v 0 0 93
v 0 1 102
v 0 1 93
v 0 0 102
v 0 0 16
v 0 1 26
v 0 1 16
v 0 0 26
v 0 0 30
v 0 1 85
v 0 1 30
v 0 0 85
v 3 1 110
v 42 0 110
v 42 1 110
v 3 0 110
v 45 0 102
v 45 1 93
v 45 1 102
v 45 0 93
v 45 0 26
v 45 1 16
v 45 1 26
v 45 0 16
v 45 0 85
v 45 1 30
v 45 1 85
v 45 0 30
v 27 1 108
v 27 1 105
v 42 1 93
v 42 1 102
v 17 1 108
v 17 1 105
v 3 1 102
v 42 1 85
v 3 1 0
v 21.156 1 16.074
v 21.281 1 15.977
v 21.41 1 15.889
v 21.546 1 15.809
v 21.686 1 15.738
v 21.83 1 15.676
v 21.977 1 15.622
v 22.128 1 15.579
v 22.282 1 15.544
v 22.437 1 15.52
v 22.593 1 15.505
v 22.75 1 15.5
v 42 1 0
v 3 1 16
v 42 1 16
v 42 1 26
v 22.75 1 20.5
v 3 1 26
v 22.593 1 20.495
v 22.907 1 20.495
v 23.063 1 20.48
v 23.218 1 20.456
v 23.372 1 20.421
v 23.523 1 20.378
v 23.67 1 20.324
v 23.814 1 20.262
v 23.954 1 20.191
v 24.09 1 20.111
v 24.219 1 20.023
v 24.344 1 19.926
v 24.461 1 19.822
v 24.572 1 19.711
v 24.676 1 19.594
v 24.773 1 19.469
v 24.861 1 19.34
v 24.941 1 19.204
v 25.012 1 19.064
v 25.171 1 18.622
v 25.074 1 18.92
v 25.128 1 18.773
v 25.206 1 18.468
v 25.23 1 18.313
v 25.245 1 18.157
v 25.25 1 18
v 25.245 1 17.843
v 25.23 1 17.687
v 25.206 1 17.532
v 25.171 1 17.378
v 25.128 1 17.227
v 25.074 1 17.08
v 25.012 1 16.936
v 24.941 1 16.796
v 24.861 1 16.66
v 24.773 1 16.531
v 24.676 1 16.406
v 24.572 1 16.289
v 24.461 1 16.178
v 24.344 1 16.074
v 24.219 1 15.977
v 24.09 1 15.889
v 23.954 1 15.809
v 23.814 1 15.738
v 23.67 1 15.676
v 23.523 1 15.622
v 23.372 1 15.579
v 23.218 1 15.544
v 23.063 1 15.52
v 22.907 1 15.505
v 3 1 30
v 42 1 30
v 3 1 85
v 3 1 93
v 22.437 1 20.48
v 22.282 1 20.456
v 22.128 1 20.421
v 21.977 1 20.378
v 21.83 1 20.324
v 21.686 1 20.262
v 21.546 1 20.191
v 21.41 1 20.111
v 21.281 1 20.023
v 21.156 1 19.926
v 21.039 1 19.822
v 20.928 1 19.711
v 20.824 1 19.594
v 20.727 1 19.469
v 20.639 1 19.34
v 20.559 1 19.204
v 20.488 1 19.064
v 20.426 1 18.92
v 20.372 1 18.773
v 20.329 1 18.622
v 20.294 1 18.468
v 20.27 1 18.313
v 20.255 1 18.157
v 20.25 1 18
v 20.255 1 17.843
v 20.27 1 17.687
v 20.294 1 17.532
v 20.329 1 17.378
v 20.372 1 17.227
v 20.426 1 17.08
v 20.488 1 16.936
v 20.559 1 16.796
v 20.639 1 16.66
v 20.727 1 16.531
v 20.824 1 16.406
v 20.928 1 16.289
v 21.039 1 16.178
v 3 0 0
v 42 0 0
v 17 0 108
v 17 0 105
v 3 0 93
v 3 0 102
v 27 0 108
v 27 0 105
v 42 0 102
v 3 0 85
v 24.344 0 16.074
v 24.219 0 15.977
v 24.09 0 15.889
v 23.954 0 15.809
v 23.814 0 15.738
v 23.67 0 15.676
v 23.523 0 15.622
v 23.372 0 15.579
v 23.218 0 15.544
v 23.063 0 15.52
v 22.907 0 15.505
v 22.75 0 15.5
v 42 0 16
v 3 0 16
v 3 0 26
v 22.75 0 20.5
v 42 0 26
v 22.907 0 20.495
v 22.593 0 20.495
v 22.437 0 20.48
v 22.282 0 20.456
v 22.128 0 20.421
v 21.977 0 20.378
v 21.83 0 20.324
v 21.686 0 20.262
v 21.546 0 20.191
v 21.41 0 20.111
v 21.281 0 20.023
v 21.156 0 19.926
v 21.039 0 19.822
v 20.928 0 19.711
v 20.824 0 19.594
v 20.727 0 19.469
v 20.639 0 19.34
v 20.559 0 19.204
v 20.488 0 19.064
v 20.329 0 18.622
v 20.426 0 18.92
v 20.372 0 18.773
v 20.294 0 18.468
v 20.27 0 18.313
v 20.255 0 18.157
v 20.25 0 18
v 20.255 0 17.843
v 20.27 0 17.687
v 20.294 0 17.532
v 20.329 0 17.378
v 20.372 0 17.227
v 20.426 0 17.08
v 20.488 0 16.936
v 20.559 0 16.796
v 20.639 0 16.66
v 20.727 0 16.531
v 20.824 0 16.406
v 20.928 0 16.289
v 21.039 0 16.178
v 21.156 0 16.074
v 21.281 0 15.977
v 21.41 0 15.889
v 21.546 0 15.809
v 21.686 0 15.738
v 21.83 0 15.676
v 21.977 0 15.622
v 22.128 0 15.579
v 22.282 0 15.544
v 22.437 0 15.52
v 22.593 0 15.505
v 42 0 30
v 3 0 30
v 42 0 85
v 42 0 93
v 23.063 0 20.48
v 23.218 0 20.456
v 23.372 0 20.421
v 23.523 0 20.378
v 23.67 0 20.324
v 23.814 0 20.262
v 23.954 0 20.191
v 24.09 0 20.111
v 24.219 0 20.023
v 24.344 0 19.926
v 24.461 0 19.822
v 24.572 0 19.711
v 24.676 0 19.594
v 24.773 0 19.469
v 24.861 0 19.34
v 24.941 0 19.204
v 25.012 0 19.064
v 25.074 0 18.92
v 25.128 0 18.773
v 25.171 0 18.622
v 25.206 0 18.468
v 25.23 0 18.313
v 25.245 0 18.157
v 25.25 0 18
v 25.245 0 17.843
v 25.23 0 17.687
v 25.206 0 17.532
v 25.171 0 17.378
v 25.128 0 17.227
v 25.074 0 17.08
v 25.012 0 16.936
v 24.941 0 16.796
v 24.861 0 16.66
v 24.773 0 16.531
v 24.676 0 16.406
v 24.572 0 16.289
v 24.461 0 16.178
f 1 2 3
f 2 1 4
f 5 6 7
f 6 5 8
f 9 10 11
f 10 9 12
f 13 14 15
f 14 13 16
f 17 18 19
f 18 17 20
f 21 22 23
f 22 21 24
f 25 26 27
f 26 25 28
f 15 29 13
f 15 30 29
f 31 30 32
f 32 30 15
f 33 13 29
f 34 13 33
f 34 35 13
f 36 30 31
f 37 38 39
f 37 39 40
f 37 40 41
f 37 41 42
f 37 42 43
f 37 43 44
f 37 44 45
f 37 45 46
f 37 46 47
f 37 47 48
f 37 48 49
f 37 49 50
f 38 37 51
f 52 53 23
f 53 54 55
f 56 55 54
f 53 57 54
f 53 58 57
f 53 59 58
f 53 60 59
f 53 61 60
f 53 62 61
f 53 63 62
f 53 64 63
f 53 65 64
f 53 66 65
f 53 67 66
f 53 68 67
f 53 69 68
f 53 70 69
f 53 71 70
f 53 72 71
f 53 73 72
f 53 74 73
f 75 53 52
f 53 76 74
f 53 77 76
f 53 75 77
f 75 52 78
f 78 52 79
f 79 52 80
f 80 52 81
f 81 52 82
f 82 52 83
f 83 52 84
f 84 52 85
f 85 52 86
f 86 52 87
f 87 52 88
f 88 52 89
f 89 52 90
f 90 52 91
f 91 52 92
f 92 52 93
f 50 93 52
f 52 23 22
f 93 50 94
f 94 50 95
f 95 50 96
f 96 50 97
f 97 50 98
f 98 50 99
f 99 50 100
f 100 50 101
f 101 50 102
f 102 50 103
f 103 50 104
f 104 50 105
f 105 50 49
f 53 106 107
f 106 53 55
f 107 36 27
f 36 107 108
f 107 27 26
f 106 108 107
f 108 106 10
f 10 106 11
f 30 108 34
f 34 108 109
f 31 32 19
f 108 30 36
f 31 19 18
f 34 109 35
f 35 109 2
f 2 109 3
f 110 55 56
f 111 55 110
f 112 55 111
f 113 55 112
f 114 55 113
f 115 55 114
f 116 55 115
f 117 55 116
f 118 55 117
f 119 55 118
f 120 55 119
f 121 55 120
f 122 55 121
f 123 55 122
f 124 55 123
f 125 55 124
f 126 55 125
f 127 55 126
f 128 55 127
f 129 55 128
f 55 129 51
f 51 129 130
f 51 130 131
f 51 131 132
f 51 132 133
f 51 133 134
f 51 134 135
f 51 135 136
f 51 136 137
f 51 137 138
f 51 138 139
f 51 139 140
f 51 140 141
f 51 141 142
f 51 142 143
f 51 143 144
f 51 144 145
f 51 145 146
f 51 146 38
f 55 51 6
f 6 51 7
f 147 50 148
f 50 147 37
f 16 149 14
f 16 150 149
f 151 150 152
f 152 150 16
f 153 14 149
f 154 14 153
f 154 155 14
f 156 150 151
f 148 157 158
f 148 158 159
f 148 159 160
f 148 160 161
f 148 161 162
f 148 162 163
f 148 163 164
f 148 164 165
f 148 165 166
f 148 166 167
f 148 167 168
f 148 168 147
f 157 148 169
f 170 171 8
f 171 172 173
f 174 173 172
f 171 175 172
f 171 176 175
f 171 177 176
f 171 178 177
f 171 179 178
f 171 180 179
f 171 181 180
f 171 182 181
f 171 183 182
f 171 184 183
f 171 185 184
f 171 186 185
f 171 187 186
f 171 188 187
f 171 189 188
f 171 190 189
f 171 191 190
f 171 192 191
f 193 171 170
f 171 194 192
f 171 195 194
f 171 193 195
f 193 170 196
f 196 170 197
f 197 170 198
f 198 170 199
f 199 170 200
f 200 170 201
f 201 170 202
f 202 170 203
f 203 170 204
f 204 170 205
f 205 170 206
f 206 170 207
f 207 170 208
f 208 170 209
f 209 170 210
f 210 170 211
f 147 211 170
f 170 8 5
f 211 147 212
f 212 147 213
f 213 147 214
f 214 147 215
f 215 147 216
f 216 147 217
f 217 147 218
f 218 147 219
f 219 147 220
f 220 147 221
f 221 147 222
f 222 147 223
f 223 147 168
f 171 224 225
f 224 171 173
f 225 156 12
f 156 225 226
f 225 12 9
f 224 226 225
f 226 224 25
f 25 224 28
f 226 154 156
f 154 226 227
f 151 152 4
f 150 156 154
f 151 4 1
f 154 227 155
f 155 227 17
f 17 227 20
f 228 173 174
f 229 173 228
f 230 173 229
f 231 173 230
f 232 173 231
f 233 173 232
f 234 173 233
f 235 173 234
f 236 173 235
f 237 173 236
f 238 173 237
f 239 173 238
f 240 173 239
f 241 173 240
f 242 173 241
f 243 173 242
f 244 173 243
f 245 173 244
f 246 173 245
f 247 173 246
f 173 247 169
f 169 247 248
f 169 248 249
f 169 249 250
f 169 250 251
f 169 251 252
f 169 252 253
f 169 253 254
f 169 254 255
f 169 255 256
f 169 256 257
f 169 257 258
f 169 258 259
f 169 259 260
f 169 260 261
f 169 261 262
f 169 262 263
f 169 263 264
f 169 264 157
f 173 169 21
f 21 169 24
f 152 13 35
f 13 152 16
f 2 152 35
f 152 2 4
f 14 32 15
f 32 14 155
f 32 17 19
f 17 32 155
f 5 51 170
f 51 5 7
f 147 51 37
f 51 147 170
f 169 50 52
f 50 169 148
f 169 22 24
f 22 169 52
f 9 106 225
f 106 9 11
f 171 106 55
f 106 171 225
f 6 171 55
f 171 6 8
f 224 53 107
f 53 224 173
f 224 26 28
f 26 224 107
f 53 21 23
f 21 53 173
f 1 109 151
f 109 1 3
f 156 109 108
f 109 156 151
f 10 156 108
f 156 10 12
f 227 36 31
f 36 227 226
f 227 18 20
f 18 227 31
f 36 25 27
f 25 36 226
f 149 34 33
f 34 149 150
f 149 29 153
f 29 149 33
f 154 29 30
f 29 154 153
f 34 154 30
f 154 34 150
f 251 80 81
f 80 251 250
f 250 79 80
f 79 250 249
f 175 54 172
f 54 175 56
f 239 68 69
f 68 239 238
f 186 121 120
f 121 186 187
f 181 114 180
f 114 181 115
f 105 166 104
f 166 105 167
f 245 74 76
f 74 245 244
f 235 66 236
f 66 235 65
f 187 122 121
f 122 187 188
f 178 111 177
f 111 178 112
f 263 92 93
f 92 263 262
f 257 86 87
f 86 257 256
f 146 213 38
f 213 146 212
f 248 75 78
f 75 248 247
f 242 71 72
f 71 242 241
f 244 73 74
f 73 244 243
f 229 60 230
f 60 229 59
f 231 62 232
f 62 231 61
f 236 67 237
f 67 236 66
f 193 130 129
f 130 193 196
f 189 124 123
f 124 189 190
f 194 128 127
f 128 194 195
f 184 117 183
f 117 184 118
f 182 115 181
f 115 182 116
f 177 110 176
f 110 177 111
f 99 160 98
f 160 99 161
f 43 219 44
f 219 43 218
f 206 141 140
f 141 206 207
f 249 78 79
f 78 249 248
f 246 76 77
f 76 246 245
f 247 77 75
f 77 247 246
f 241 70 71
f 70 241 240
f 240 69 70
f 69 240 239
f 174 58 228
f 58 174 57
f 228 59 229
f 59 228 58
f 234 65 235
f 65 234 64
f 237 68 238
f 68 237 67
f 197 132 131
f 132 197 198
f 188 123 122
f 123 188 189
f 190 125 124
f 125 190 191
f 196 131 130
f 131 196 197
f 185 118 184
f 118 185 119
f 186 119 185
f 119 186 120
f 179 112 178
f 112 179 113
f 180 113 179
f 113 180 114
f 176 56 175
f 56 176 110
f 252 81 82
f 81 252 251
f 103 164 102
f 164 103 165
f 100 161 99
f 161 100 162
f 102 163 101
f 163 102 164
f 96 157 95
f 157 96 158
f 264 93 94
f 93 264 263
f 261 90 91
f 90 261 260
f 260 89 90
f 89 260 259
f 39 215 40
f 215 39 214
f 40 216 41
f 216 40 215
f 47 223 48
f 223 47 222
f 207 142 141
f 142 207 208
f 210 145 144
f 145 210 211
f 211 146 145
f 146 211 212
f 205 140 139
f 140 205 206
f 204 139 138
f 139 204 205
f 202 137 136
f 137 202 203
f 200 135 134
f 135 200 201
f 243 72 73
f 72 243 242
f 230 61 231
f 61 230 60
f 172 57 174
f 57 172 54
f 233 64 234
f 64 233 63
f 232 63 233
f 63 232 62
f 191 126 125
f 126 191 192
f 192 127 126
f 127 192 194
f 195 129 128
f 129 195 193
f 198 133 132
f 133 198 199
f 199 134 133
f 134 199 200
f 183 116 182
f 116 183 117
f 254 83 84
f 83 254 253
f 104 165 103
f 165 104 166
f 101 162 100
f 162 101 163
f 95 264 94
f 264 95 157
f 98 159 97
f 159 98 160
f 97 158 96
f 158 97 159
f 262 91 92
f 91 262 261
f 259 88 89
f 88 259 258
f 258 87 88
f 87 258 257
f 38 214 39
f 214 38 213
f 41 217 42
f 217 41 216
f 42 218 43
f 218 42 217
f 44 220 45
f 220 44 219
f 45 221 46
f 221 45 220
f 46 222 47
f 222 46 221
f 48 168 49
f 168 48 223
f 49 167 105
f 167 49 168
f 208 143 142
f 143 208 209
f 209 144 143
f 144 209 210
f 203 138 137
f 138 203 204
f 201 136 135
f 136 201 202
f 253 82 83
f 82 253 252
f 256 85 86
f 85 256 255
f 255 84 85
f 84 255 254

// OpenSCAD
difference()
{
color("red")translate([0,0,0])cube([45,1,110]);

//Top Corners
color("yellow")translate([-1,-1,102])cube([4,3,9]);
color("yellow")translate([42,-1,102])cube([4,3,9]);

//Bottom Corners
color("blue")translate([-1,-1,-1])cube([4,3,17]);
color("blue")translate([42,-1,-1])cube([4,3,17]);

//Lower Middle Sections
color("green")translate([-1,-1,26])cube([4,3,4]);
color("green")translate([42,-1,26])cube([4,3,4]);

//Upper Middle Sections
color("white")translate([-1,-1,85])cube([4,3,8]);
color("white")translate([42,-1,85])cube([4,3,8]);
    
//The Screws and Slit Parts
color("white")translate([17,-1,105])cube([10,3,3]);
color("white")translate([22.75,2,18])rotate([90,0,0])cylinder(3,2.5,2.5, $fn=100);
}
